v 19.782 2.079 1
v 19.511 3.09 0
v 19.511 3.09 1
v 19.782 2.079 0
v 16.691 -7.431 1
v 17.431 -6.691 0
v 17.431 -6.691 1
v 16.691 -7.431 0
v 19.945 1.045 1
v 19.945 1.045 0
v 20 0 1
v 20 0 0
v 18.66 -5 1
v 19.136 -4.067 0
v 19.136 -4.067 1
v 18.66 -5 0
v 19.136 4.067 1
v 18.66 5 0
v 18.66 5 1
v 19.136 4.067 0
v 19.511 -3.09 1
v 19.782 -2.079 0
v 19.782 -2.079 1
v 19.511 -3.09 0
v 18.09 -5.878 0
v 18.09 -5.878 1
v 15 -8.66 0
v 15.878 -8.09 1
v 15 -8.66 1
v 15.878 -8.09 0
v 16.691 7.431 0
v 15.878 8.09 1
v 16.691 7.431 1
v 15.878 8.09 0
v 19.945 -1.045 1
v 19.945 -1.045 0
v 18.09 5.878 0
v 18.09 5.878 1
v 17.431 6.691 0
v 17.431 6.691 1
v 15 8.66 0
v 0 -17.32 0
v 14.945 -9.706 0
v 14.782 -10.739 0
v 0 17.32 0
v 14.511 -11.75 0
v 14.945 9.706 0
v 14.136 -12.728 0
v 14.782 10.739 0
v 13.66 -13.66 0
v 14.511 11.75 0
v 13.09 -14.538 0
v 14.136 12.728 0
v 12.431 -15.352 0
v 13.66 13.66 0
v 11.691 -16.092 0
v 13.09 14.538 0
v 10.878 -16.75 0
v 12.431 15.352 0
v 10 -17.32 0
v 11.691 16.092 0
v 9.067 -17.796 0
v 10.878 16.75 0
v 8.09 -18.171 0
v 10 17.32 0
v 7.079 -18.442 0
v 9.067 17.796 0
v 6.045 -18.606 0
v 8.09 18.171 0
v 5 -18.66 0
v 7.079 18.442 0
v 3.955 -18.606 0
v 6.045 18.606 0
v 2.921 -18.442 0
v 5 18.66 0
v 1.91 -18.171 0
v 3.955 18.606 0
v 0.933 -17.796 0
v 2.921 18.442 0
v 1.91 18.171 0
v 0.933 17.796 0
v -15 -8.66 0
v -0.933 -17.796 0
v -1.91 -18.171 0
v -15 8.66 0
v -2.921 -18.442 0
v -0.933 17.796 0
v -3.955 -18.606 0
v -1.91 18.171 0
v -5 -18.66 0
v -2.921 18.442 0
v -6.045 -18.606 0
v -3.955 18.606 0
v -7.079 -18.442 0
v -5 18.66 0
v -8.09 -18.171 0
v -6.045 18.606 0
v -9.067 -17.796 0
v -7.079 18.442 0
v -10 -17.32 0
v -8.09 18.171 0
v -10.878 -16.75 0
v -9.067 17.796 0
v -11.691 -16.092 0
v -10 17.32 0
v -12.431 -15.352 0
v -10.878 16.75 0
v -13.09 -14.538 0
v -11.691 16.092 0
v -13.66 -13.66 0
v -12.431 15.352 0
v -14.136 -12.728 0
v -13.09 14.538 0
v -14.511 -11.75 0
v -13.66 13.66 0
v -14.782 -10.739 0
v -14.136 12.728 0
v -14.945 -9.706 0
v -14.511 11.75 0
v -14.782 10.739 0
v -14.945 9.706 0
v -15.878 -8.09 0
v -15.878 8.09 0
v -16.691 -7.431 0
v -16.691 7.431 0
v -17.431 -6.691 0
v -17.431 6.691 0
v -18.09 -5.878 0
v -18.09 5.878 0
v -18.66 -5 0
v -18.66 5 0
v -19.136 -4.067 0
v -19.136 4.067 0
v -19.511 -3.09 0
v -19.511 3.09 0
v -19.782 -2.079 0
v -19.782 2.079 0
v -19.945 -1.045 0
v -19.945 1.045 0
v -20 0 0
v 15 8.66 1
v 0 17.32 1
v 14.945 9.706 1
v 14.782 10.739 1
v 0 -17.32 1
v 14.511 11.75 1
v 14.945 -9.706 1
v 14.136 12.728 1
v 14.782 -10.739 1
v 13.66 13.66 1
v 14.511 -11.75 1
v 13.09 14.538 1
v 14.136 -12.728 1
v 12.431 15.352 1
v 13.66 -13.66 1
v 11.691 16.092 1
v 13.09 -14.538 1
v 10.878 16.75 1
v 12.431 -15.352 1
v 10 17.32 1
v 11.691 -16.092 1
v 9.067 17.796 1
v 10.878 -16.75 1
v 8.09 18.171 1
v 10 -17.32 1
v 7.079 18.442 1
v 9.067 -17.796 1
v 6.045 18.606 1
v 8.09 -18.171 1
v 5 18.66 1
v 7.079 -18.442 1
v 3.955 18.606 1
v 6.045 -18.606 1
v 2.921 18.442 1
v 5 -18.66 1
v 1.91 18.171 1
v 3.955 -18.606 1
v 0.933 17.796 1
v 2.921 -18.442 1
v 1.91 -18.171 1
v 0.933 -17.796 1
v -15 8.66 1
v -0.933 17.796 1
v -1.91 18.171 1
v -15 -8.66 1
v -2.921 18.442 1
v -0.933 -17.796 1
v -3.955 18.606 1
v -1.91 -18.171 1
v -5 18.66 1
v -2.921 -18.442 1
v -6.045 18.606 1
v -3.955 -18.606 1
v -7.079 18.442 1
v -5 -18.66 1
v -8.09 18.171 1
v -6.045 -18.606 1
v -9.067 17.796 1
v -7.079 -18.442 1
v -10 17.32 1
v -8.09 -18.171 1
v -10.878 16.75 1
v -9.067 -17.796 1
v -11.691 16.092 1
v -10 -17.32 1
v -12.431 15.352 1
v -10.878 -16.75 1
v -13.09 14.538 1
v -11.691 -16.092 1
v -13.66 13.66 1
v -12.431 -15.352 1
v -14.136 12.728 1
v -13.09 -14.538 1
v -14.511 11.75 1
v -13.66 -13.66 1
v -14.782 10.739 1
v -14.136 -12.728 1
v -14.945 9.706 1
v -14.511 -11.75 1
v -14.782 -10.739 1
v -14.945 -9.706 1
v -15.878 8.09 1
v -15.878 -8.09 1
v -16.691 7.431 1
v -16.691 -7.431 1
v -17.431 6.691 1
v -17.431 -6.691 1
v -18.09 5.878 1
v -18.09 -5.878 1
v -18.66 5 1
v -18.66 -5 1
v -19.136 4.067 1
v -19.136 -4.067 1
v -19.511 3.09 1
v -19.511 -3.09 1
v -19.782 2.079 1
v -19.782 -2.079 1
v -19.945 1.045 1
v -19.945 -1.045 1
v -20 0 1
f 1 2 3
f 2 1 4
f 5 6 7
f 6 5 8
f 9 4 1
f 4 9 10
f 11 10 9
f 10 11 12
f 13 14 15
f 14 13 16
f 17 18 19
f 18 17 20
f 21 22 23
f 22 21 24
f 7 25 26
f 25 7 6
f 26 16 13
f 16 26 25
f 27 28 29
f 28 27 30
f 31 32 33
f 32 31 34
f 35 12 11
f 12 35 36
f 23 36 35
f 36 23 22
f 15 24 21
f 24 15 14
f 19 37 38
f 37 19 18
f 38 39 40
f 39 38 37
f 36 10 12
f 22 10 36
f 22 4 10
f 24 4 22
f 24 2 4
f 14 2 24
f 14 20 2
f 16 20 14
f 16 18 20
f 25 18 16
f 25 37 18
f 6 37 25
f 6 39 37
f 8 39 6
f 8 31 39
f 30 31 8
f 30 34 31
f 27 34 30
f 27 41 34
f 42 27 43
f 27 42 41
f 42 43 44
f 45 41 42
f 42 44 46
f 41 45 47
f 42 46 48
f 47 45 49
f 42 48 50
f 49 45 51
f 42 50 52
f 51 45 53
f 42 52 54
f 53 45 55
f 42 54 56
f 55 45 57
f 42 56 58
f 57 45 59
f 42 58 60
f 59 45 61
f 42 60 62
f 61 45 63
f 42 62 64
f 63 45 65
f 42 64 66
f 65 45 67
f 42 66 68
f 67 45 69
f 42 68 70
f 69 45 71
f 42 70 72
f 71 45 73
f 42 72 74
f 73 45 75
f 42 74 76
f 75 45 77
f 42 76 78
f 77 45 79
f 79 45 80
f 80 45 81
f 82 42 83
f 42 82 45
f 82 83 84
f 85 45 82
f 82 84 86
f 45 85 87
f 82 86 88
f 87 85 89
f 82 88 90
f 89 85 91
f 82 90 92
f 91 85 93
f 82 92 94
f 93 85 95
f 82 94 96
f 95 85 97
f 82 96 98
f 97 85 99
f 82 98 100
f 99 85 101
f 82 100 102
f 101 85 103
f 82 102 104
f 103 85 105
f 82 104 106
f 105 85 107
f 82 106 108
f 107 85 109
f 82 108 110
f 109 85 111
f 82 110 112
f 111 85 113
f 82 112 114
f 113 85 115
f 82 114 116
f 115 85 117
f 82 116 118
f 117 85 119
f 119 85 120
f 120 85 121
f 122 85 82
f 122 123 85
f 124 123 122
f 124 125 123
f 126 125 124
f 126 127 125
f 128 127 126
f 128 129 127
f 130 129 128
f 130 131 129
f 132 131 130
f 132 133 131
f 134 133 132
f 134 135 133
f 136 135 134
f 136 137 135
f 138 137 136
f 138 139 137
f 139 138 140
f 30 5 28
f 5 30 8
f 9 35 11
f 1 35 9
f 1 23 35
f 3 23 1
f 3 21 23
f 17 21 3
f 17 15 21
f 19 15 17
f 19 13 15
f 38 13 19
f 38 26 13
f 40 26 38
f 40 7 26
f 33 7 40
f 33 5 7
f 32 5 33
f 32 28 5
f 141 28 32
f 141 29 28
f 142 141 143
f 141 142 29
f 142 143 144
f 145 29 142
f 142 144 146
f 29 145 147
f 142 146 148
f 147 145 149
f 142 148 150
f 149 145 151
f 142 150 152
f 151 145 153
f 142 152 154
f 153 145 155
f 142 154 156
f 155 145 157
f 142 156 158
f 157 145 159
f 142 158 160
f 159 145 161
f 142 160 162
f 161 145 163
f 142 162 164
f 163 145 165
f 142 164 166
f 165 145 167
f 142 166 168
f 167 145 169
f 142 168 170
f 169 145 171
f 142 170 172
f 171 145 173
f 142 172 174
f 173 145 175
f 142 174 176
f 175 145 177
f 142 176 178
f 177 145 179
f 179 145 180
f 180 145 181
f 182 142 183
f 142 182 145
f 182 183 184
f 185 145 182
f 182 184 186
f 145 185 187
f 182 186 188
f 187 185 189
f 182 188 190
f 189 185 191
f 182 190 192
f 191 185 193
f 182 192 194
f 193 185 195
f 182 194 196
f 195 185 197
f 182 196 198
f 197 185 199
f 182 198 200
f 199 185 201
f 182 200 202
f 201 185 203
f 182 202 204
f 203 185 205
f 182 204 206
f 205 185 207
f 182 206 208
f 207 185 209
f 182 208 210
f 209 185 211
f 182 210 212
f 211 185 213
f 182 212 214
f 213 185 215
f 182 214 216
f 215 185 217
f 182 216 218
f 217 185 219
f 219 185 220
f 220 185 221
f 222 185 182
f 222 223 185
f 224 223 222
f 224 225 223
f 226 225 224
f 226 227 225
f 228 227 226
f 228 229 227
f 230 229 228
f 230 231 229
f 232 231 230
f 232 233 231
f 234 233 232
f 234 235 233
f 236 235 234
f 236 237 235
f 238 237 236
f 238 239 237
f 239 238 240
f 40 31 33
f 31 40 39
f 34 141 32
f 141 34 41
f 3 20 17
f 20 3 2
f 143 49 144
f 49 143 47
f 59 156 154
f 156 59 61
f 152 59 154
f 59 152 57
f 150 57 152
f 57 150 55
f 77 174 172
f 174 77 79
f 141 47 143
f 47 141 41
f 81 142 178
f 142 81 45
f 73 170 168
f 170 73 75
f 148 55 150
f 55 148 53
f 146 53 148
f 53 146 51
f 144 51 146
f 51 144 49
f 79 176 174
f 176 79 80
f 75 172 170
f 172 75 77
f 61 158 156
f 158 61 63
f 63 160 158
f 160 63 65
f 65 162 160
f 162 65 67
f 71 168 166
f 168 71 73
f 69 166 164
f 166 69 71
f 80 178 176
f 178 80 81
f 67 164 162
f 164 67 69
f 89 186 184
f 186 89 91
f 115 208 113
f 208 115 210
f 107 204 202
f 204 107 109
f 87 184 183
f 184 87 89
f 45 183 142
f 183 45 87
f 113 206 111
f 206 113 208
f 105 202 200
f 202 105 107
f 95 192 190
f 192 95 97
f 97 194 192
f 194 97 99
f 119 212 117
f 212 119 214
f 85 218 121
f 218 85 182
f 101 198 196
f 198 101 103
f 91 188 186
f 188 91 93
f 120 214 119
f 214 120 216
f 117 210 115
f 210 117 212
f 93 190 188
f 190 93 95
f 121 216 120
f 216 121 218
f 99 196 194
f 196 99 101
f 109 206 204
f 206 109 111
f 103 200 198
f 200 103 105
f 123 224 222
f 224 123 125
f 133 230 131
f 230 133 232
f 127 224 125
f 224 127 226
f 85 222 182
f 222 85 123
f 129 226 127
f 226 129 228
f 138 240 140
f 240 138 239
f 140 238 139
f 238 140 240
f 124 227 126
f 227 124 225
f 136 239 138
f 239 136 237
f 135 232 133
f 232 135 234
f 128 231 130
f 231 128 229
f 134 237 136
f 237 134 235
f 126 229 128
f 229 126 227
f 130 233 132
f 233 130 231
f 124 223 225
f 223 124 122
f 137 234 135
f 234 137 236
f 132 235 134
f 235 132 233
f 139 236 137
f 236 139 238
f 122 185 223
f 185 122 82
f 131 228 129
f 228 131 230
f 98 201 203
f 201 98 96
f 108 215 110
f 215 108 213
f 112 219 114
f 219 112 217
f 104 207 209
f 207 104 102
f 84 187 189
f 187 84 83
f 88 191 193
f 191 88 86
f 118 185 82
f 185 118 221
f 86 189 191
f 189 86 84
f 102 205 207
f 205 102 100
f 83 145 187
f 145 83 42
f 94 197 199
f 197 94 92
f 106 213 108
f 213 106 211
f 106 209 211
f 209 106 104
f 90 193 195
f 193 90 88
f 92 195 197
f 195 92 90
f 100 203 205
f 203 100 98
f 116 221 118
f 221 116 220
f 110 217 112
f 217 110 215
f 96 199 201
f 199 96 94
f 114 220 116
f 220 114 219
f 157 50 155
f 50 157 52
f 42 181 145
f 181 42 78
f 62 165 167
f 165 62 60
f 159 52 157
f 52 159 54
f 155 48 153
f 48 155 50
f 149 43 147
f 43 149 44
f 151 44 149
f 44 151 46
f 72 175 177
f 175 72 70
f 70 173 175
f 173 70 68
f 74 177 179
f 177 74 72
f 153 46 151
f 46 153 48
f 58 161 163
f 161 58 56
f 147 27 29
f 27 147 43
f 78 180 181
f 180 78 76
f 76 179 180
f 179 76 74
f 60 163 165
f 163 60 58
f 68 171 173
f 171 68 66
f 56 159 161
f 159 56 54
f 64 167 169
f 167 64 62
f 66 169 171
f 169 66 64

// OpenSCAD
// Decagon in OpenSCAD
$fn = 60;

module decagon(radius, angle_increment) {
  difference() {
    for (i = [0:7]) {
      angle = i * angle_increment;
      rotate([0, 0, angle]) {
        translate([radius * cos(angle), radius * sin(angle), 0]) {
          linear_extrude(height = 1) {
            circle(r = radius);
          }
        }
      }
    }
  }
}

decagon(radius = 10, angle_increment = 30);
